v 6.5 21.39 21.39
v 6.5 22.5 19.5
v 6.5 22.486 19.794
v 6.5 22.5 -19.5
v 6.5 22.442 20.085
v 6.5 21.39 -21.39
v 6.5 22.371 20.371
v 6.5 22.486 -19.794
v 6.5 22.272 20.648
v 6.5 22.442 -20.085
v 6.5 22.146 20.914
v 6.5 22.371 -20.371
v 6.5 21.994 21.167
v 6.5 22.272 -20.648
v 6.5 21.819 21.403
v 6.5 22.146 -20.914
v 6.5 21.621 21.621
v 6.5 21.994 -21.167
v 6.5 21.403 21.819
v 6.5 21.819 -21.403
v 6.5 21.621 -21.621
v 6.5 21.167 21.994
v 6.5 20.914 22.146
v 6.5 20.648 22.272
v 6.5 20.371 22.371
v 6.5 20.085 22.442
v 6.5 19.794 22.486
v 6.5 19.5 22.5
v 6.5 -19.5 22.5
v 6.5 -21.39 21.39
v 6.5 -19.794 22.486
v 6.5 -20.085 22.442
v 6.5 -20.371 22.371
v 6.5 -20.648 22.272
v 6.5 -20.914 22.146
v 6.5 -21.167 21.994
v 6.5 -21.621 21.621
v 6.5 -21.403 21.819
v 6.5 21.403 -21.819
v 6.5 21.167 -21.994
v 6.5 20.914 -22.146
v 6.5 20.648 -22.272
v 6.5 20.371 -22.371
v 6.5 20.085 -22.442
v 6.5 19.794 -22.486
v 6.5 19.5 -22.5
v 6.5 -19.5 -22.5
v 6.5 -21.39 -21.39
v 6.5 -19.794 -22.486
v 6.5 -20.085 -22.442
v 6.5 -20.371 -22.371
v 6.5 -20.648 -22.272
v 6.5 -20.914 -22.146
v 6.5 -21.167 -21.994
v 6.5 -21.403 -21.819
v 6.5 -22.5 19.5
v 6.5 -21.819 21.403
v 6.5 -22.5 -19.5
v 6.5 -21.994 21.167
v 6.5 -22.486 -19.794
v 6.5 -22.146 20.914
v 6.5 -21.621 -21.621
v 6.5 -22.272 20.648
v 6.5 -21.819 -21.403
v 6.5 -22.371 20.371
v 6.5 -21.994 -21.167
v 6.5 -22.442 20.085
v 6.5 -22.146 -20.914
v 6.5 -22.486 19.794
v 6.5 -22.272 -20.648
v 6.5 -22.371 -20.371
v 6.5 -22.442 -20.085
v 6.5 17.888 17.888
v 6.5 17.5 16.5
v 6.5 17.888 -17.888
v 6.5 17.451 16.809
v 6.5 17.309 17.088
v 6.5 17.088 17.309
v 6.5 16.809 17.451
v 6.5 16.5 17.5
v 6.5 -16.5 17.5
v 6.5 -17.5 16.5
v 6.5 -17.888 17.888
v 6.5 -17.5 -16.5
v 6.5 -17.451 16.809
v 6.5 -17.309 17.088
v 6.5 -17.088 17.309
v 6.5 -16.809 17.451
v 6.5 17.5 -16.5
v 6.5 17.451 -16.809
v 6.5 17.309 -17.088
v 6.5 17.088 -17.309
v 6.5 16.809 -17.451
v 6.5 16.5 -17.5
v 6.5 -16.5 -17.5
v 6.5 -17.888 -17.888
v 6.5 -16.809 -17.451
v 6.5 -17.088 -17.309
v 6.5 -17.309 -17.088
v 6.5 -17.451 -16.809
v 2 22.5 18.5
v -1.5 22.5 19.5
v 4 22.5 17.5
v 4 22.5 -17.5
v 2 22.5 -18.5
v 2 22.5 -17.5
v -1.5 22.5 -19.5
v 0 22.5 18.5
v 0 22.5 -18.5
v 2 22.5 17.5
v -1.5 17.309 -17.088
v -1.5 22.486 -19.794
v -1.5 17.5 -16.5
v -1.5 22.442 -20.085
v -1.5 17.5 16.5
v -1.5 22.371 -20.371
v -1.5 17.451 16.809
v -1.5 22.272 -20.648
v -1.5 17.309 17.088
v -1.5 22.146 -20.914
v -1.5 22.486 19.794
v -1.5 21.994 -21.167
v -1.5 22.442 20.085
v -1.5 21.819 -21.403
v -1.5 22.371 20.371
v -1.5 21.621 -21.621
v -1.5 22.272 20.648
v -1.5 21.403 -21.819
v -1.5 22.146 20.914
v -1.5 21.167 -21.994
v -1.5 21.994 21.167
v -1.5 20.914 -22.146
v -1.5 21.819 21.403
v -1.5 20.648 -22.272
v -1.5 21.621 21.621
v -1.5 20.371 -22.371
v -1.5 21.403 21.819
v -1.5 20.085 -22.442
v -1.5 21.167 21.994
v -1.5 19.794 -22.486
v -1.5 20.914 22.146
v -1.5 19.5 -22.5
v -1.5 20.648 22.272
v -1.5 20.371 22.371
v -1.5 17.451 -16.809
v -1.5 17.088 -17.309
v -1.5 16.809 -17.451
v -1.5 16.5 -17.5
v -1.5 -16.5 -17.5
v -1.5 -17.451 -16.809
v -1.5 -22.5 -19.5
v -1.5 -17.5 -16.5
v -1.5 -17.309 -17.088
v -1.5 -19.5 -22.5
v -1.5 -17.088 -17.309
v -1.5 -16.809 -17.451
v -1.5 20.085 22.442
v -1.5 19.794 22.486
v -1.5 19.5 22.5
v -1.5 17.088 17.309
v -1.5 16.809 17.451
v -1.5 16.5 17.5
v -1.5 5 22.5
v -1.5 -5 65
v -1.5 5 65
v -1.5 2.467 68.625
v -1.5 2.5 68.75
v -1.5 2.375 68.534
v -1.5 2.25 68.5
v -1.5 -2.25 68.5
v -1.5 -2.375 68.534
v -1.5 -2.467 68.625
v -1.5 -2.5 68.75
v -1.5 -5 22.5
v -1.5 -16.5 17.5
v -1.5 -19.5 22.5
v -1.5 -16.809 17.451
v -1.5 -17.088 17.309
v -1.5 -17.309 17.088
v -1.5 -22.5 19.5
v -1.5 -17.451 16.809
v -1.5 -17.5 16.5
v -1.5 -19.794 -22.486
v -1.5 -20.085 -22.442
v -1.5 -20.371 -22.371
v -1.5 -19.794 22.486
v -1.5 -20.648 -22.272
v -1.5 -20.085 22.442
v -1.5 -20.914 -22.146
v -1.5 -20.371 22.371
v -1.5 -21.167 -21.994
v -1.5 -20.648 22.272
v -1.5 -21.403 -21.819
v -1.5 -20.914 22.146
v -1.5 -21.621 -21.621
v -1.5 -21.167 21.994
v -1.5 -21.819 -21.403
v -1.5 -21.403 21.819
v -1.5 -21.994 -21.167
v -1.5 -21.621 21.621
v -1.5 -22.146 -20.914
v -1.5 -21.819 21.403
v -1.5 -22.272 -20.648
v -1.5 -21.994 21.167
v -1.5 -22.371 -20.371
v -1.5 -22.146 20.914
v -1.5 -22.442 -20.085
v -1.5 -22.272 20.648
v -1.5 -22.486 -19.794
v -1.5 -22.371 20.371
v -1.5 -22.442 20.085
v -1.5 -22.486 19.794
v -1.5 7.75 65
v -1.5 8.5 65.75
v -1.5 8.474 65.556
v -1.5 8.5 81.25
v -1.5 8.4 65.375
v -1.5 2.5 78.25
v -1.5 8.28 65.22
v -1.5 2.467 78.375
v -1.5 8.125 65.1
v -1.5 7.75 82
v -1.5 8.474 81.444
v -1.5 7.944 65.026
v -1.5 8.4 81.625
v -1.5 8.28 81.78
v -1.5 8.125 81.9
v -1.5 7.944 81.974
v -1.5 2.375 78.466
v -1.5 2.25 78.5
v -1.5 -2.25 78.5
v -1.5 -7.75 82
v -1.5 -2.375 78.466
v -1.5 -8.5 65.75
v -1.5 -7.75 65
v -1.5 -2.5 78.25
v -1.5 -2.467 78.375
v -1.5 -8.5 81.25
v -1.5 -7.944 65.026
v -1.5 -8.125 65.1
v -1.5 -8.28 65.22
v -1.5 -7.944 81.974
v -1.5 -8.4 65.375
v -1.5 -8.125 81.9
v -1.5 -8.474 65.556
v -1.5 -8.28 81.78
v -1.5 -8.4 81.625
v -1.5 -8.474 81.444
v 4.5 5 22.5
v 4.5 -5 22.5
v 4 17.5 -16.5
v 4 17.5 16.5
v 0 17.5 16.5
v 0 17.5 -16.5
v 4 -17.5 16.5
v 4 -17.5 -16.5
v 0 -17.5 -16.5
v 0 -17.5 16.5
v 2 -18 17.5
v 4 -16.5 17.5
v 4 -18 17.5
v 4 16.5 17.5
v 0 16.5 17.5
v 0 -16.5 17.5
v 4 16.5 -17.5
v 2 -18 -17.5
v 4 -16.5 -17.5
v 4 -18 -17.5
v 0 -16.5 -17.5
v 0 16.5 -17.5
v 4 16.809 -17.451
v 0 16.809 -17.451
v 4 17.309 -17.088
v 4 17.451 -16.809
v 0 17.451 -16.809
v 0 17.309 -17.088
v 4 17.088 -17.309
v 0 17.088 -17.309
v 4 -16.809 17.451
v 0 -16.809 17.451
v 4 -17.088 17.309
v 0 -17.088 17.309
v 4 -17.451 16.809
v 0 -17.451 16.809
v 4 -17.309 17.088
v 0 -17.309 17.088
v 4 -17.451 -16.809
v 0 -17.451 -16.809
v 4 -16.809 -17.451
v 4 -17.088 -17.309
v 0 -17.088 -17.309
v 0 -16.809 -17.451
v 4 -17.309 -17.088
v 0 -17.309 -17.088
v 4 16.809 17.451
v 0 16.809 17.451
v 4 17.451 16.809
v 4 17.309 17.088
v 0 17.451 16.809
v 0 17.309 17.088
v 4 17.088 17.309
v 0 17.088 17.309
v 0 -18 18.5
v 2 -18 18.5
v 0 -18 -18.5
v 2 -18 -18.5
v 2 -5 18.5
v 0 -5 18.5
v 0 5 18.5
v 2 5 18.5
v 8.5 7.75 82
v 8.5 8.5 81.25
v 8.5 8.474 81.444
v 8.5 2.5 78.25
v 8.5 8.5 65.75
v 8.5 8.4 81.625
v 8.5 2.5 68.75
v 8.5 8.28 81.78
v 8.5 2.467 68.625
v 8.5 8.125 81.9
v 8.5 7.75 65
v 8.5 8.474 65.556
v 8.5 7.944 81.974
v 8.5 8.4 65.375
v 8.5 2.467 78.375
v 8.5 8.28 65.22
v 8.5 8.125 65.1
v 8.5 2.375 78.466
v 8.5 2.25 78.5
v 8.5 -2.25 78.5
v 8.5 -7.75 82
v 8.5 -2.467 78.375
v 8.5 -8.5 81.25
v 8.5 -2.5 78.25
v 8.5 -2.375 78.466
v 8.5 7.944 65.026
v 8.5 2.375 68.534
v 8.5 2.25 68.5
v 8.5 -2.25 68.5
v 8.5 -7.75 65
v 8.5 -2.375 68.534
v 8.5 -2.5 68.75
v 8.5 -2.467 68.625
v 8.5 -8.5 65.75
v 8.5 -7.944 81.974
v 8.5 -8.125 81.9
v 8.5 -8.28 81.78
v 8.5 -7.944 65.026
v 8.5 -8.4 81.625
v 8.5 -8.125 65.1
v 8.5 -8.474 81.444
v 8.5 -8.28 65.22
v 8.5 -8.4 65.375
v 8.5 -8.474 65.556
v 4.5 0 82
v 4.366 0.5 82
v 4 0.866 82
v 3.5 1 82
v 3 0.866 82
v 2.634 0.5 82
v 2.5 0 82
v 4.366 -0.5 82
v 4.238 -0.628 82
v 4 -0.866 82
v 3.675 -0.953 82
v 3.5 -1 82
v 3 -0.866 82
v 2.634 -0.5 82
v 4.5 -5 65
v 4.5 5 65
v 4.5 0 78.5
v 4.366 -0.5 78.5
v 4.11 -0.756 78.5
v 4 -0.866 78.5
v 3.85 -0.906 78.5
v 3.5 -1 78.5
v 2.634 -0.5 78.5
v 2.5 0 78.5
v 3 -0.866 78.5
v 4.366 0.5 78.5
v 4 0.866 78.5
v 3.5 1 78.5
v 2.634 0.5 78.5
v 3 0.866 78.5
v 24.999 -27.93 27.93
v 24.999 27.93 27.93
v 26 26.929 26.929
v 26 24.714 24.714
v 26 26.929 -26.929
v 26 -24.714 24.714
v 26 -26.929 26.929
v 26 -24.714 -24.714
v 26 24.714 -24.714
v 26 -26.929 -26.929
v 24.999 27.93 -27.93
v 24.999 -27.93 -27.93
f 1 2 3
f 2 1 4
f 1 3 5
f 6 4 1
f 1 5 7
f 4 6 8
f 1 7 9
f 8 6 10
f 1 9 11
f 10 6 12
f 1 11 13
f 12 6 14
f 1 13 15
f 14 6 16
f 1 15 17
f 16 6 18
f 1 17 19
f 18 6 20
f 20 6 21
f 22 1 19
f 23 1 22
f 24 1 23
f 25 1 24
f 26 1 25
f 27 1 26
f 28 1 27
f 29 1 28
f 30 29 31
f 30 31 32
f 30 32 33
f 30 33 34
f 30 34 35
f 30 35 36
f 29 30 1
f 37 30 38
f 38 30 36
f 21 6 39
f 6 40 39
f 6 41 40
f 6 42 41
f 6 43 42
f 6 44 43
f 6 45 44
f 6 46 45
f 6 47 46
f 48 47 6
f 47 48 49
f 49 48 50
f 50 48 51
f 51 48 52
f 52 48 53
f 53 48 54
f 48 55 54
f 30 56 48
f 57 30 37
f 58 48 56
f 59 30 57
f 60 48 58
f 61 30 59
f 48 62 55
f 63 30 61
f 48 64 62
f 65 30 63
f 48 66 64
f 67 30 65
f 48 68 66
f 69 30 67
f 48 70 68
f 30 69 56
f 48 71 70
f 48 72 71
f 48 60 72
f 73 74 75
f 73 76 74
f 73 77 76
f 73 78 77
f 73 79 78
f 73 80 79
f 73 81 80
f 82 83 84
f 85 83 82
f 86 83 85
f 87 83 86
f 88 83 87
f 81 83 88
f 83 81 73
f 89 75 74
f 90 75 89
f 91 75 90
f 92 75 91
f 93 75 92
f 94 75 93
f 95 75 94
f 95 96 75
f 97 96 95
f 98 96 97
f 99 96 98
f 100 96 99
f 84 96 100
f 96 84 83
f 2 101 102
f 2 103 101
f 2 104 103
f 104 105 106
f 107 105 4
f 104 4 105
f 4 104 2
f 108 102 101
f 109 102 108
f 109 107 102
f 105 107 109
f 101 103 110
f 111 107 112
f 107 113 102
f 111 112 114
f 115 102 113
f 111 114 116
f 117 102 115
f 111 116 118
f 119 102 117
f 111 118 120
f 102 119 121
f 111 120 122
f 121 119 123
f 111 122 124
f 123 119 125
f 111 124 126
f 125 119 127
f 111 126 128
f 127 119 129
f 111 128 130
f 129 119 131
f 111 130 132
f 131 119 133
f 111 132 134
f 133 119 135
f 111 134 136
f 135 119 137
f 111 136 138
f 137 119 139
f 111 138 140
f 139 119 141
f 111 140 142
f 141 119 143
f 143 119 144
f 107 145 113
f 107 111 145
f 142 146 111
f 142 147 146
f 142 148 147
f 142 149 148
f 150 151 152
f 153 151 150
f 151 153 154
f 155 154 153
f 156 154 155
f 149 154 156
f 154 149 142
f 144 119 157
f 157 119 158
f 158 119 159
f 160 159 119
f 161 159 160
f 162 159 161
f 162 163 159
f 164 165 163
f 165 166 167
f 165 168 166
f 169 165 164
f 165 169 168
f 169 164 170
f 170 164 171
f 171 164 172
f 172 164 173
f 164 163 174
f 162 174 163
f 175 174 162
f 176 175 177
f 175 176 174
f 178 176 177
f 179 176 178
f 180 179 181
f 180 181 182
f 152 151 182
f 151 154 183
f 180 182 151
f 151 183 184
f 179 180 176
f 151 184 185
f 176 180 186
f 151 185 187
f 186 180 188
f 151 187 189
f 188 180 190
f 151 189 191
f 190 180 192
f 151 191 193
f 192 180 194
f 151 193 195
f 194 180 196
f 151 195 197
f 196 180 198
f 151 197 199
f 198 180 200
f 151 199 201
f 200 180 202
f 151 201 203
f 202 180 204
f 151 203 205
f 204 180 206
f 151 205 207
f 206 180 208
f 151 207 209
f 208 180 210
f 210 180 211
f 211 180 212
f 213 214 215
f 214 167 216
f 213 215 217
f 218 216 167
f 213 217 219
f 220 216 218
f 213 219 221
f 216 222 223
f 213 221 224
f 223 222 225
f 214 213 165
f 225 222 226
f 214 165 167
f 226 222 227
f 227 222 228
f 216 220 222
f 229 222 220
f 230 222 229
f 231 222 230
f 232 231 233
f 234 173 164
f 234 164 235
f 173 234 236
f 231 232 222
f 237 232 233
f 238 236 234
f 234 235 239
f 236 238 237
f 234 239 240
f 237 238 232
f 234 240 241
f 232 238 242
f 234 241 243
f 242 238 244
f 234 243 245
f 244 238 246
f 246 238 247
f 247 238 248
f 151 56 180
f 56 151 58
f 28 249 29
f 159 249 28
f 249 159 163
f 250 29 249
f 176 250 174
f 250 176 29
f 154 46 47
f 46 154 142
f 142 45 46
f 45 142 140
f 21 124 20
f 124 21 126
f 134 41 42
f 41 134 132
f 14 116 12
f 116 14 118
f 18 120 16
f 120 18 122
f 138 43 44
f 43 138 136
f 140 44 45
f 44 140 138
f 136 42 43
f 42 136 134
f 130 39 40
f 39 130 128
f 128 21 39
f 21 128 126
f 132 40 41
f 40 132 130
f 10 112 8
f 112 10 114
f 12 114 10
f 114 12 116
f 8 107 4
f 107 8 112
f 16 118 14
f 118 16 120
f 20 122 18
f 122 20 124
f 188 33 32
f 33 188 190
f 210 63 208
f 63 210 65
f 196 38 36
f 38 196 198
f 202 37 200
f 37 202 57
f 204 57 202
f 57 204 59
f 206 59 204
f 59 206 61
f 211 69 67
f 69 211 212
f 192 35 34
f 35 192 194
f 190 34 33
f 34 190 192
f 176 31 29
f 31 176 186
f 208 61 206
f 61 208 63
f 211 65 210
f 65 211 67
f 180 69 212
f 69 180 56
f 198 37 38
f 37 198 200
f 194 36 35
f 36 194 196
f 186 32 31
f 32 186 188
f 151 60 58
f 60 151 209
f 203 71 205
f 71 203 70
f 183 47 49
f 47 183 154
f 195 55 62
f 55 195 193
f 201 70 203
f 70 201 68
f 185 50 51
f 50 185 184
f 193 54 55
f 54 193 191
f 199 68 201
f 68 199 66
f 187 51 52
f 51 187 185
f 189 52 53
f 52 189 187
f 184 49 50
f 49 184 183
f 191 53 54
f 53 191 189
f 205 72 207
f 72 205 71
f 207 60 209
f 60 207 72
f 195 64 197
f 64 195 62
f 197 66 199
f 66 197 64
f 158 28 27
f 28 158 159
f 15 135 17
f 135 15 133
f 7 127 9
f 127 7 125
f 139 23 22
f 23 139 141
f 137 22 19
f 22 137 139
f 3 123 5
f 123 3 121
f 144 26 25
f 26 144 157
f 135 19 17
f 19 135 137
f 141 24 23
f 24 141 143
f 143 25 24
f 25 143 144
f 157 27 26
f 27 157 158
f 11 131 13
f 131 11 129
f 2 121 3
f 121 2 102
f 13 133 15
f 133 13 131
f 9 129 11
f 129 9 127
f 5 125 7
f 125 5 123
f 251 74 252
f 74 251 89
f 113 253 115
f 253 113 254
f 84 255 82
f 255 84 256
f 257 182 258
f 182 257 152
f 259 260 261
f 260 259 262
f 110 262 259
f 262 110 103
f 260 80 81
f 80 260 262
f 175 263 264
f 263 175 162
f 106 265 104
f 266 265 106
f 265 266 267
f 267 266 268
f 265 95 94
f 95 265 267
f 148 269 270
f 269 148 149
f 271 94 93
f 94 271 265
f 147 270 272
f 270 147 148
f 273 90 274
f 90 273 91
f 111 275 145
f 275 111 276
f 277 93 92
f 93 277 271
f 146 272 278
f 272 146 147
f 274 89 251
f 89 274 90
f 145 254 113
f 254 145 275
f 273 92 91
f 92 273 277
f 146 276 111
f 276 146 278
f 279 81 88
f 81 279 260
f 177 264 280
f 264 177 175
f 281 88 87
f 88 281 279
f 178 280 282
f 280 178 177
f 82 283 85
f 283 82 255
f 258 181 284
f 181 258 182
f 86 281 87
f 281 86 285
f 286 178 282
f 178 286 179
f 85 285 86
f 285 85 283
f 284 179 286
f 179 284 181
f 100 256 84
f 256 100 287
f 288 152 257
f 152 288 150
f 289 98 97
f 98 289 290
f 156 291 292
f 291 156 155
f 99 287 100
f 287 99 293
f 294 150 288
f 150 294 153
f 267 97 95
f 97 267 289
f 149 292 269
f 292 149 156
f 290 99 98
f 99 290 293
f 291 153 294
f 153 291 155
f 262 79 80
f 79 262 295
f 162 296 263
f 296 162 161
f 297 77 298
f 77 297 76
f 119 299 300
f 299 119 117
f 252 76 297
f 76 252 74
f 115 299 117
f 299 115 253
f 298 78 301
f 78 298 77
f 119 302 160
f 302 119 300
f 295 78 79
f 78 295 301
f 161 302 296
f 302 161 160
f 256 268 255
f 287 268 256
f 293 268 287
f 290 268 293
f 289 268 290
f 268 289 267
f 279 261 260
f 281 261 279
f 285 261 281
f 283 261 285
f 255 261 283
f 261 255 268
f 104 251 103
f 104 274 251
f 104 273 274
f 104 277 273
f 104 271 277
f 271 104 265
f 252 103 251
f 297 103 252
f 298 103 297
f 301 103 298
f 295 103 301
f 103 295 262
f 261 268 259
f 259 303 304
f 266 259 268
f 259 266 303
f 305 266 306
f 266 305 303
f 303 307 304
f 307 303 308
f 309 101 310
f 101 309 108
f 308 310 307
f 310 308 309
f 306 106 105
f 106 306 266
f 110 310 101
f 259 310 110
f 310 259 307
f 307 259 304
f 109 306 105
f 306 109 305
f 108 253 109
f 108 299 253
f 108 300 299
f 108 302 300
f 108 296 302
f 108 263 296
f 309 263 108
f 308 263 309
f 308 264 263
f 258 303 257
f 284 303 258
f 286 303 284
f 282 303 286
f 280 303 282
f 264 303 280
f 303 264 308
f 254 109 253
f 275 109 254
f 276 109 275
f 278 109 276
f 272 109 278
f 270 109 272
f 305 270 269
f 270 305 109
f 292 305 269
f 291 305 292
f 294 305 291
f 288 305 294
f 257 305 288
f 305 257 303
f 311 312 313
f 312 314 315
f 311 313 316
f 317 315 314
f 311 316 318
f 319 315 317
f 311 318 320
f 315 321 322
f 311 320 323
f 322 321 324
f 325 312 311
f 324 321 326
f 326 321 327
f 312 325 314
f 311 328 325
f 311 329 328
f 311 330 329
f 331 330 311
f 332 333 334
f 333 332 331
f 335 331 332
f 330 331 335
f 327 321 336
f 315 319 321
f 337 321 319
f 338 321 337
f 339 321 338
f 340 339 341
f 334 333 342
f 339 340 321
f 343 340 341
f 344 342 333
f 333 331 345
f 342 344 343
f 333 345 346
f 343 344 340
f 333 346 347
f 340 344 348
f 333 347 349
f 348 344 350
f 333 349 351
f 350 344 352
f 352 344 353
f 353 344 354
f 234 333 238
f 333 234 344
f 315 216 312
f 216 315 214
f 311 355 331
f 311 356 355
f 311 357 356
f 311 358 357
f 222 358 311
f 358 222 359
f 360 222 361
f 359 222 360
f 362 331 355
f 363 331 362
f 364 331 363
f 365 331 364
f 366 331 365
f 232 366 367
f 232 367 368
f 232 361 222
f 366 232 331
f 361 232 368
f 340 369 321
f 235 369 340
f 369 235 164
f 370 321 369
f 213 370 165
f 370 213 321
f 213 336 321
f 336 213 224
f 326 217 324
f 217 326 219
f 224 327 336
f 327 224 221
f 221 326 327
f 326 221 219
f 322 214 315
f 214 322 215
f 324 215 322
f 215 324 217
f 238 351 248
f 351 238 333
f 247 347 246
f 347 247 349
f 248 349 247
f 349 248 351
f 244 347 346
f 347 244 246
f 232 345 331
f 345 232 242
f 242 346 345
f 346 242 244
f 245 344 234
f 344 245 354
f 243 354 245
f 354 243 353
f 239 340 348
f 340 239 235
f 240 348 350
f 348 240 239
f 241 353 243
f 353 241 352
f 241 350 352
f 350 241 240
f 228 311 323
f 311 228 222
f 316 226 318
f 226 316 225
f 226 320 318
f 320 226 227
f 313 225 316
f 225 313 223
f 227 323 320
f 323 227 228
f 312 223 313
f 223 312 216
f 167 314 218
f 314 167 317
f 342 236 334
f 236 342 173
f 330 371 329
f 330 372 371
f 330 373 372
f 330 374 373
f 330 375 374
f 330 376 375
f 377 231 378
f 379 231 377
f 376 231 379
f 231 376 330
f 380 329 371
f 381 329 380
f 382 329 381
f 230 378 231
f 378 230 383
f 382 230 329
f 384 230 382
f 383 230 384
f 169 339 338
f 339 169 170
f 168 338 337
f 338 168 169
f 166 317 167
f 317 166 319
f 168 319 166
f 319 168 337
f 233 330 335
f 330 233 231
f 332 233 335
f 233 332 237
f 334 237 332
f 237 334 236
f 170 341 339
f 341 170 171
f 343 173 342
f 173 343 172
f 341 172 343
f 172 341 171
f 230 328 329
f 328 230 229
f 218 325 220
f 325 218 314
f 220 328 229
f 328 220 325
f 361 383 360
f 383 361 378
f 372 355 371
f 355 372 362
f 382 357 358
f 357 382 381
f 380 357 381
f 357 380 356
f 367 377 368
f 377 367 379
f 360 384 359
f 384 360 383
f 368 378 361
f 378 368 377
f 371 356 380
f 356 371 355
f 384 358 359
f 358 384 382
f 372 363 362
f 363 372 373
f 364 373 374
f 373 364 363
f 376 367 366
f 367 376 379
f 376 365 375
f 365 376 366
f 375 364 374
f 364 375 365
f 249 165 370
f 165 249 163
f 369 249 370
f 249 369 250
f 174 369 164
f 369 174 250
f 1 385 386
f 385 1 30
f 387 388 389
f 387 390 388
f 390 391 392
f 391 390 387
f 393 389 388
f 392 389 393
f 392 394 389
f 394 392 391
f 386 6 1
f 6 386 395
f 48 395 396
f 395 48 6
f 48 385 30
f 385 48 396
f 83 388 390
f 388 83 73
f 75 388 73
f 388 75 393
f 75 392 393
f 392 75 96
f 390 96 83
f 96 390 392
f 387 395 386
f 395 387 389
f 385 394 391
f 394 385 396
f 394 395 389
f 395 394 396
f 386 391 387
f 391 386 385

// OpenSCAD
time = 0;

module rcube (cube_arr = [1, 1, 1], d = 0, center = true, $fn = $fn) {
  r = d/2;
  union () {
    cube([cube_arr[0] - d, cube_arr[1], cube_arr[2]], center = center);
    cube([cube_arr[0], cube_arr[1] - d, cube_arr[2]], center = center);
    translate ([1 * (cube_arr[0] / 2) - r , 1 * (cube_arr[1] / 2)- r, 0]) {
          cylinder(r = r, h = cube_arr[2], center = center);
        }
    translate ([-1 * (cube_arr[0] / 2) + r, -1 * (cube_arr[1] / 2) + r, 0]) {
          cylinder(r = r, h = cube_arr[2], center = center);
        }
    translate ([1 * (cube_arr[0] / 2) - r, -1 * (cube_arr[1] / 2) + r, 0]) {
          cylinder(r = r, h = cube_arr[2], center = center);
        }
    translate ([-1 * (cube_arr[0] / 2) + r, 1 * (cube_arr[1] / 2)- r, 0]) {
          cylinder(r = r, h = cube_arr[2], center = center);
        }
    }
}

module bolex_matte_box () {
  	X = 35;
  	Y = 35;
  	FRAME = 10;
  
	  TAB_X = 10;
  	TAB_Z = 6;
  	TAB_Y = 49;
  
  	RAIL = 10;
  
  	difference () {
    	translate([0, 0, 5/2]) {
			rcube([X + FRAME, Y + FRAME, 8], d = 6, center = true, $fn = 64);
      	}
  		rcube([X, Y, 40], d = 2,  center = true, $fn = 20); //center
    	translate([0, FRAME/2, 5/2]) {
    		cube([X, Y + FRAME + 1, 3], center = true);
      	}
       	translate([0, FRAME/2, 1]) {
    		cube([X + 2, Y + FRAME + 1, 2], center = true);
      	}
    }

  	translate([(-Y / 2) - TAB_Y - 7, 0, 3.5]) {
    	difference () {
            rcube([RAIL + 7, RAIL + 7, 10], d = 1.5, center = true, $fn = 24);
    		rcube([RAIL, RAIL/2, 15], d = .5, center = true, $fn = 12);
      
    	rotate([0, 90, 0]) translate([0, 0, -7]) cylinder(r = 1, h = 10, center = true, $fn = 12);
      	} 
    }
  
    rotate ([0, 0, 90]) {
  		translate([0, (TAB_Y / 2) + (X / 2) + 1, 1.5]) cube([TAB_X, TAB_Y, TAB_Z], center = true);
    } 
}

module bolex_matte_box_full () {
  bolex_matte_box();
  difference () {
  	translate([0, 0, 6]) rotate([0, 0, 45]) cylinder(r1= 30, r2 = 40, h = 20, $fn = 4);
    translate([0, 0, 5.9]) rotate([0, 0, 45]) cylinder(r1= 25, r2 = 35, h = 20.2, $fn = 4);
  	//smooth edges
    translate([0, 30, 30]) rotate([45, 0, 0])cube([70, 10, 10], center = true);
    translate([0, -30, 30]) rotate([45, 0, 0])cube([70, 10, 10], center = true);
  	translate([30, 0, 30]) rotate([0, 45, 0])cube([10, 70, 10], center = true);
    translate([-30, 0, 30]) rotate([0, 45, 0])cube([10, 70, 10], center = true);
  
  }
}

module bolex_matte_box_front () {
	RAIL = 10;
  	RAIL_W = 10;
  
  	FRAME = 15;
  
  	TAB_X = 10;
  	TAB_Y = 39;
    TAB_Z = 4;
    O_Y = 40;
  
  	X = 55;
  	Y = 60;
  
    translate([0, 0, 1.5]) {
      difference () {
    	rcube([X + FRAME, Y + FRAME, TAB_Z], d = 6, center = true, $fn = 24);
  		rcube([X, Y, TAB_Z], d = 2,  center = true, $fn = 12);
      }
  	}
}

module bolex_matte_box_front_top () {
	RAIL = 10.6;
  	RAIL_W = 10;
  
  	FRAME = 15;
  
  	TAB_X = 10;
  	TAB_Y = 30;
    TAB_Z = 4;
    O_Y = 40;
  
  	X = 55;
  	Y = 60;
  
  	translate([-73.5, 0, 4.5]) {
      difference () {
          rcube([RAIL+7, RAIL+7, RAIL_W], d = 1.5, center = true, $fn = 24);
          rcube([RAIL, RAIL/2, RAIL_W], d = .5, center = true, $fn = 12);
    	  rotate([0, 90, 0]) translate([0, 0, -7]) cylinder(r = 1, h = 10, center = true, $fn = 12);  
      }
  	}
  
    rotate ([0, 0, 90]) {
  		translate([0, (TAB_Y / 2) + (X / 2) + 7.5, 1.5]) cube([TAB_X, TAB_Y, TAB_Z], center = true);
    } 
  	
    rotate ([0, 0, 90]) {
    	difference () {
  			translate([0, (TAB_Y / 2) + (X / 2) - 2.5, 2.5]) cube([TAB_X * 3, 10, TAB_Z+2], center = true);
      		translate([-10, 48, 2.5]) rotate([0, 0, 30])  cube([TAB_X * 3, 10, TAB_Z+2], center = true);
      		translate([10, 48, 2.5]) rotate([0, 0, -30])  cube([TAB_X * 3, 10, TAB_Z+2], center = true);
      	}
    	translate([0, (TAB_Y / 2) + (X / 2) - 7.5, 4.5]) cube([TAB_X * 3, 5, 2], center = true);
    }  	
}

rotate([0, 90, time]) bolex_matte_box_full();
